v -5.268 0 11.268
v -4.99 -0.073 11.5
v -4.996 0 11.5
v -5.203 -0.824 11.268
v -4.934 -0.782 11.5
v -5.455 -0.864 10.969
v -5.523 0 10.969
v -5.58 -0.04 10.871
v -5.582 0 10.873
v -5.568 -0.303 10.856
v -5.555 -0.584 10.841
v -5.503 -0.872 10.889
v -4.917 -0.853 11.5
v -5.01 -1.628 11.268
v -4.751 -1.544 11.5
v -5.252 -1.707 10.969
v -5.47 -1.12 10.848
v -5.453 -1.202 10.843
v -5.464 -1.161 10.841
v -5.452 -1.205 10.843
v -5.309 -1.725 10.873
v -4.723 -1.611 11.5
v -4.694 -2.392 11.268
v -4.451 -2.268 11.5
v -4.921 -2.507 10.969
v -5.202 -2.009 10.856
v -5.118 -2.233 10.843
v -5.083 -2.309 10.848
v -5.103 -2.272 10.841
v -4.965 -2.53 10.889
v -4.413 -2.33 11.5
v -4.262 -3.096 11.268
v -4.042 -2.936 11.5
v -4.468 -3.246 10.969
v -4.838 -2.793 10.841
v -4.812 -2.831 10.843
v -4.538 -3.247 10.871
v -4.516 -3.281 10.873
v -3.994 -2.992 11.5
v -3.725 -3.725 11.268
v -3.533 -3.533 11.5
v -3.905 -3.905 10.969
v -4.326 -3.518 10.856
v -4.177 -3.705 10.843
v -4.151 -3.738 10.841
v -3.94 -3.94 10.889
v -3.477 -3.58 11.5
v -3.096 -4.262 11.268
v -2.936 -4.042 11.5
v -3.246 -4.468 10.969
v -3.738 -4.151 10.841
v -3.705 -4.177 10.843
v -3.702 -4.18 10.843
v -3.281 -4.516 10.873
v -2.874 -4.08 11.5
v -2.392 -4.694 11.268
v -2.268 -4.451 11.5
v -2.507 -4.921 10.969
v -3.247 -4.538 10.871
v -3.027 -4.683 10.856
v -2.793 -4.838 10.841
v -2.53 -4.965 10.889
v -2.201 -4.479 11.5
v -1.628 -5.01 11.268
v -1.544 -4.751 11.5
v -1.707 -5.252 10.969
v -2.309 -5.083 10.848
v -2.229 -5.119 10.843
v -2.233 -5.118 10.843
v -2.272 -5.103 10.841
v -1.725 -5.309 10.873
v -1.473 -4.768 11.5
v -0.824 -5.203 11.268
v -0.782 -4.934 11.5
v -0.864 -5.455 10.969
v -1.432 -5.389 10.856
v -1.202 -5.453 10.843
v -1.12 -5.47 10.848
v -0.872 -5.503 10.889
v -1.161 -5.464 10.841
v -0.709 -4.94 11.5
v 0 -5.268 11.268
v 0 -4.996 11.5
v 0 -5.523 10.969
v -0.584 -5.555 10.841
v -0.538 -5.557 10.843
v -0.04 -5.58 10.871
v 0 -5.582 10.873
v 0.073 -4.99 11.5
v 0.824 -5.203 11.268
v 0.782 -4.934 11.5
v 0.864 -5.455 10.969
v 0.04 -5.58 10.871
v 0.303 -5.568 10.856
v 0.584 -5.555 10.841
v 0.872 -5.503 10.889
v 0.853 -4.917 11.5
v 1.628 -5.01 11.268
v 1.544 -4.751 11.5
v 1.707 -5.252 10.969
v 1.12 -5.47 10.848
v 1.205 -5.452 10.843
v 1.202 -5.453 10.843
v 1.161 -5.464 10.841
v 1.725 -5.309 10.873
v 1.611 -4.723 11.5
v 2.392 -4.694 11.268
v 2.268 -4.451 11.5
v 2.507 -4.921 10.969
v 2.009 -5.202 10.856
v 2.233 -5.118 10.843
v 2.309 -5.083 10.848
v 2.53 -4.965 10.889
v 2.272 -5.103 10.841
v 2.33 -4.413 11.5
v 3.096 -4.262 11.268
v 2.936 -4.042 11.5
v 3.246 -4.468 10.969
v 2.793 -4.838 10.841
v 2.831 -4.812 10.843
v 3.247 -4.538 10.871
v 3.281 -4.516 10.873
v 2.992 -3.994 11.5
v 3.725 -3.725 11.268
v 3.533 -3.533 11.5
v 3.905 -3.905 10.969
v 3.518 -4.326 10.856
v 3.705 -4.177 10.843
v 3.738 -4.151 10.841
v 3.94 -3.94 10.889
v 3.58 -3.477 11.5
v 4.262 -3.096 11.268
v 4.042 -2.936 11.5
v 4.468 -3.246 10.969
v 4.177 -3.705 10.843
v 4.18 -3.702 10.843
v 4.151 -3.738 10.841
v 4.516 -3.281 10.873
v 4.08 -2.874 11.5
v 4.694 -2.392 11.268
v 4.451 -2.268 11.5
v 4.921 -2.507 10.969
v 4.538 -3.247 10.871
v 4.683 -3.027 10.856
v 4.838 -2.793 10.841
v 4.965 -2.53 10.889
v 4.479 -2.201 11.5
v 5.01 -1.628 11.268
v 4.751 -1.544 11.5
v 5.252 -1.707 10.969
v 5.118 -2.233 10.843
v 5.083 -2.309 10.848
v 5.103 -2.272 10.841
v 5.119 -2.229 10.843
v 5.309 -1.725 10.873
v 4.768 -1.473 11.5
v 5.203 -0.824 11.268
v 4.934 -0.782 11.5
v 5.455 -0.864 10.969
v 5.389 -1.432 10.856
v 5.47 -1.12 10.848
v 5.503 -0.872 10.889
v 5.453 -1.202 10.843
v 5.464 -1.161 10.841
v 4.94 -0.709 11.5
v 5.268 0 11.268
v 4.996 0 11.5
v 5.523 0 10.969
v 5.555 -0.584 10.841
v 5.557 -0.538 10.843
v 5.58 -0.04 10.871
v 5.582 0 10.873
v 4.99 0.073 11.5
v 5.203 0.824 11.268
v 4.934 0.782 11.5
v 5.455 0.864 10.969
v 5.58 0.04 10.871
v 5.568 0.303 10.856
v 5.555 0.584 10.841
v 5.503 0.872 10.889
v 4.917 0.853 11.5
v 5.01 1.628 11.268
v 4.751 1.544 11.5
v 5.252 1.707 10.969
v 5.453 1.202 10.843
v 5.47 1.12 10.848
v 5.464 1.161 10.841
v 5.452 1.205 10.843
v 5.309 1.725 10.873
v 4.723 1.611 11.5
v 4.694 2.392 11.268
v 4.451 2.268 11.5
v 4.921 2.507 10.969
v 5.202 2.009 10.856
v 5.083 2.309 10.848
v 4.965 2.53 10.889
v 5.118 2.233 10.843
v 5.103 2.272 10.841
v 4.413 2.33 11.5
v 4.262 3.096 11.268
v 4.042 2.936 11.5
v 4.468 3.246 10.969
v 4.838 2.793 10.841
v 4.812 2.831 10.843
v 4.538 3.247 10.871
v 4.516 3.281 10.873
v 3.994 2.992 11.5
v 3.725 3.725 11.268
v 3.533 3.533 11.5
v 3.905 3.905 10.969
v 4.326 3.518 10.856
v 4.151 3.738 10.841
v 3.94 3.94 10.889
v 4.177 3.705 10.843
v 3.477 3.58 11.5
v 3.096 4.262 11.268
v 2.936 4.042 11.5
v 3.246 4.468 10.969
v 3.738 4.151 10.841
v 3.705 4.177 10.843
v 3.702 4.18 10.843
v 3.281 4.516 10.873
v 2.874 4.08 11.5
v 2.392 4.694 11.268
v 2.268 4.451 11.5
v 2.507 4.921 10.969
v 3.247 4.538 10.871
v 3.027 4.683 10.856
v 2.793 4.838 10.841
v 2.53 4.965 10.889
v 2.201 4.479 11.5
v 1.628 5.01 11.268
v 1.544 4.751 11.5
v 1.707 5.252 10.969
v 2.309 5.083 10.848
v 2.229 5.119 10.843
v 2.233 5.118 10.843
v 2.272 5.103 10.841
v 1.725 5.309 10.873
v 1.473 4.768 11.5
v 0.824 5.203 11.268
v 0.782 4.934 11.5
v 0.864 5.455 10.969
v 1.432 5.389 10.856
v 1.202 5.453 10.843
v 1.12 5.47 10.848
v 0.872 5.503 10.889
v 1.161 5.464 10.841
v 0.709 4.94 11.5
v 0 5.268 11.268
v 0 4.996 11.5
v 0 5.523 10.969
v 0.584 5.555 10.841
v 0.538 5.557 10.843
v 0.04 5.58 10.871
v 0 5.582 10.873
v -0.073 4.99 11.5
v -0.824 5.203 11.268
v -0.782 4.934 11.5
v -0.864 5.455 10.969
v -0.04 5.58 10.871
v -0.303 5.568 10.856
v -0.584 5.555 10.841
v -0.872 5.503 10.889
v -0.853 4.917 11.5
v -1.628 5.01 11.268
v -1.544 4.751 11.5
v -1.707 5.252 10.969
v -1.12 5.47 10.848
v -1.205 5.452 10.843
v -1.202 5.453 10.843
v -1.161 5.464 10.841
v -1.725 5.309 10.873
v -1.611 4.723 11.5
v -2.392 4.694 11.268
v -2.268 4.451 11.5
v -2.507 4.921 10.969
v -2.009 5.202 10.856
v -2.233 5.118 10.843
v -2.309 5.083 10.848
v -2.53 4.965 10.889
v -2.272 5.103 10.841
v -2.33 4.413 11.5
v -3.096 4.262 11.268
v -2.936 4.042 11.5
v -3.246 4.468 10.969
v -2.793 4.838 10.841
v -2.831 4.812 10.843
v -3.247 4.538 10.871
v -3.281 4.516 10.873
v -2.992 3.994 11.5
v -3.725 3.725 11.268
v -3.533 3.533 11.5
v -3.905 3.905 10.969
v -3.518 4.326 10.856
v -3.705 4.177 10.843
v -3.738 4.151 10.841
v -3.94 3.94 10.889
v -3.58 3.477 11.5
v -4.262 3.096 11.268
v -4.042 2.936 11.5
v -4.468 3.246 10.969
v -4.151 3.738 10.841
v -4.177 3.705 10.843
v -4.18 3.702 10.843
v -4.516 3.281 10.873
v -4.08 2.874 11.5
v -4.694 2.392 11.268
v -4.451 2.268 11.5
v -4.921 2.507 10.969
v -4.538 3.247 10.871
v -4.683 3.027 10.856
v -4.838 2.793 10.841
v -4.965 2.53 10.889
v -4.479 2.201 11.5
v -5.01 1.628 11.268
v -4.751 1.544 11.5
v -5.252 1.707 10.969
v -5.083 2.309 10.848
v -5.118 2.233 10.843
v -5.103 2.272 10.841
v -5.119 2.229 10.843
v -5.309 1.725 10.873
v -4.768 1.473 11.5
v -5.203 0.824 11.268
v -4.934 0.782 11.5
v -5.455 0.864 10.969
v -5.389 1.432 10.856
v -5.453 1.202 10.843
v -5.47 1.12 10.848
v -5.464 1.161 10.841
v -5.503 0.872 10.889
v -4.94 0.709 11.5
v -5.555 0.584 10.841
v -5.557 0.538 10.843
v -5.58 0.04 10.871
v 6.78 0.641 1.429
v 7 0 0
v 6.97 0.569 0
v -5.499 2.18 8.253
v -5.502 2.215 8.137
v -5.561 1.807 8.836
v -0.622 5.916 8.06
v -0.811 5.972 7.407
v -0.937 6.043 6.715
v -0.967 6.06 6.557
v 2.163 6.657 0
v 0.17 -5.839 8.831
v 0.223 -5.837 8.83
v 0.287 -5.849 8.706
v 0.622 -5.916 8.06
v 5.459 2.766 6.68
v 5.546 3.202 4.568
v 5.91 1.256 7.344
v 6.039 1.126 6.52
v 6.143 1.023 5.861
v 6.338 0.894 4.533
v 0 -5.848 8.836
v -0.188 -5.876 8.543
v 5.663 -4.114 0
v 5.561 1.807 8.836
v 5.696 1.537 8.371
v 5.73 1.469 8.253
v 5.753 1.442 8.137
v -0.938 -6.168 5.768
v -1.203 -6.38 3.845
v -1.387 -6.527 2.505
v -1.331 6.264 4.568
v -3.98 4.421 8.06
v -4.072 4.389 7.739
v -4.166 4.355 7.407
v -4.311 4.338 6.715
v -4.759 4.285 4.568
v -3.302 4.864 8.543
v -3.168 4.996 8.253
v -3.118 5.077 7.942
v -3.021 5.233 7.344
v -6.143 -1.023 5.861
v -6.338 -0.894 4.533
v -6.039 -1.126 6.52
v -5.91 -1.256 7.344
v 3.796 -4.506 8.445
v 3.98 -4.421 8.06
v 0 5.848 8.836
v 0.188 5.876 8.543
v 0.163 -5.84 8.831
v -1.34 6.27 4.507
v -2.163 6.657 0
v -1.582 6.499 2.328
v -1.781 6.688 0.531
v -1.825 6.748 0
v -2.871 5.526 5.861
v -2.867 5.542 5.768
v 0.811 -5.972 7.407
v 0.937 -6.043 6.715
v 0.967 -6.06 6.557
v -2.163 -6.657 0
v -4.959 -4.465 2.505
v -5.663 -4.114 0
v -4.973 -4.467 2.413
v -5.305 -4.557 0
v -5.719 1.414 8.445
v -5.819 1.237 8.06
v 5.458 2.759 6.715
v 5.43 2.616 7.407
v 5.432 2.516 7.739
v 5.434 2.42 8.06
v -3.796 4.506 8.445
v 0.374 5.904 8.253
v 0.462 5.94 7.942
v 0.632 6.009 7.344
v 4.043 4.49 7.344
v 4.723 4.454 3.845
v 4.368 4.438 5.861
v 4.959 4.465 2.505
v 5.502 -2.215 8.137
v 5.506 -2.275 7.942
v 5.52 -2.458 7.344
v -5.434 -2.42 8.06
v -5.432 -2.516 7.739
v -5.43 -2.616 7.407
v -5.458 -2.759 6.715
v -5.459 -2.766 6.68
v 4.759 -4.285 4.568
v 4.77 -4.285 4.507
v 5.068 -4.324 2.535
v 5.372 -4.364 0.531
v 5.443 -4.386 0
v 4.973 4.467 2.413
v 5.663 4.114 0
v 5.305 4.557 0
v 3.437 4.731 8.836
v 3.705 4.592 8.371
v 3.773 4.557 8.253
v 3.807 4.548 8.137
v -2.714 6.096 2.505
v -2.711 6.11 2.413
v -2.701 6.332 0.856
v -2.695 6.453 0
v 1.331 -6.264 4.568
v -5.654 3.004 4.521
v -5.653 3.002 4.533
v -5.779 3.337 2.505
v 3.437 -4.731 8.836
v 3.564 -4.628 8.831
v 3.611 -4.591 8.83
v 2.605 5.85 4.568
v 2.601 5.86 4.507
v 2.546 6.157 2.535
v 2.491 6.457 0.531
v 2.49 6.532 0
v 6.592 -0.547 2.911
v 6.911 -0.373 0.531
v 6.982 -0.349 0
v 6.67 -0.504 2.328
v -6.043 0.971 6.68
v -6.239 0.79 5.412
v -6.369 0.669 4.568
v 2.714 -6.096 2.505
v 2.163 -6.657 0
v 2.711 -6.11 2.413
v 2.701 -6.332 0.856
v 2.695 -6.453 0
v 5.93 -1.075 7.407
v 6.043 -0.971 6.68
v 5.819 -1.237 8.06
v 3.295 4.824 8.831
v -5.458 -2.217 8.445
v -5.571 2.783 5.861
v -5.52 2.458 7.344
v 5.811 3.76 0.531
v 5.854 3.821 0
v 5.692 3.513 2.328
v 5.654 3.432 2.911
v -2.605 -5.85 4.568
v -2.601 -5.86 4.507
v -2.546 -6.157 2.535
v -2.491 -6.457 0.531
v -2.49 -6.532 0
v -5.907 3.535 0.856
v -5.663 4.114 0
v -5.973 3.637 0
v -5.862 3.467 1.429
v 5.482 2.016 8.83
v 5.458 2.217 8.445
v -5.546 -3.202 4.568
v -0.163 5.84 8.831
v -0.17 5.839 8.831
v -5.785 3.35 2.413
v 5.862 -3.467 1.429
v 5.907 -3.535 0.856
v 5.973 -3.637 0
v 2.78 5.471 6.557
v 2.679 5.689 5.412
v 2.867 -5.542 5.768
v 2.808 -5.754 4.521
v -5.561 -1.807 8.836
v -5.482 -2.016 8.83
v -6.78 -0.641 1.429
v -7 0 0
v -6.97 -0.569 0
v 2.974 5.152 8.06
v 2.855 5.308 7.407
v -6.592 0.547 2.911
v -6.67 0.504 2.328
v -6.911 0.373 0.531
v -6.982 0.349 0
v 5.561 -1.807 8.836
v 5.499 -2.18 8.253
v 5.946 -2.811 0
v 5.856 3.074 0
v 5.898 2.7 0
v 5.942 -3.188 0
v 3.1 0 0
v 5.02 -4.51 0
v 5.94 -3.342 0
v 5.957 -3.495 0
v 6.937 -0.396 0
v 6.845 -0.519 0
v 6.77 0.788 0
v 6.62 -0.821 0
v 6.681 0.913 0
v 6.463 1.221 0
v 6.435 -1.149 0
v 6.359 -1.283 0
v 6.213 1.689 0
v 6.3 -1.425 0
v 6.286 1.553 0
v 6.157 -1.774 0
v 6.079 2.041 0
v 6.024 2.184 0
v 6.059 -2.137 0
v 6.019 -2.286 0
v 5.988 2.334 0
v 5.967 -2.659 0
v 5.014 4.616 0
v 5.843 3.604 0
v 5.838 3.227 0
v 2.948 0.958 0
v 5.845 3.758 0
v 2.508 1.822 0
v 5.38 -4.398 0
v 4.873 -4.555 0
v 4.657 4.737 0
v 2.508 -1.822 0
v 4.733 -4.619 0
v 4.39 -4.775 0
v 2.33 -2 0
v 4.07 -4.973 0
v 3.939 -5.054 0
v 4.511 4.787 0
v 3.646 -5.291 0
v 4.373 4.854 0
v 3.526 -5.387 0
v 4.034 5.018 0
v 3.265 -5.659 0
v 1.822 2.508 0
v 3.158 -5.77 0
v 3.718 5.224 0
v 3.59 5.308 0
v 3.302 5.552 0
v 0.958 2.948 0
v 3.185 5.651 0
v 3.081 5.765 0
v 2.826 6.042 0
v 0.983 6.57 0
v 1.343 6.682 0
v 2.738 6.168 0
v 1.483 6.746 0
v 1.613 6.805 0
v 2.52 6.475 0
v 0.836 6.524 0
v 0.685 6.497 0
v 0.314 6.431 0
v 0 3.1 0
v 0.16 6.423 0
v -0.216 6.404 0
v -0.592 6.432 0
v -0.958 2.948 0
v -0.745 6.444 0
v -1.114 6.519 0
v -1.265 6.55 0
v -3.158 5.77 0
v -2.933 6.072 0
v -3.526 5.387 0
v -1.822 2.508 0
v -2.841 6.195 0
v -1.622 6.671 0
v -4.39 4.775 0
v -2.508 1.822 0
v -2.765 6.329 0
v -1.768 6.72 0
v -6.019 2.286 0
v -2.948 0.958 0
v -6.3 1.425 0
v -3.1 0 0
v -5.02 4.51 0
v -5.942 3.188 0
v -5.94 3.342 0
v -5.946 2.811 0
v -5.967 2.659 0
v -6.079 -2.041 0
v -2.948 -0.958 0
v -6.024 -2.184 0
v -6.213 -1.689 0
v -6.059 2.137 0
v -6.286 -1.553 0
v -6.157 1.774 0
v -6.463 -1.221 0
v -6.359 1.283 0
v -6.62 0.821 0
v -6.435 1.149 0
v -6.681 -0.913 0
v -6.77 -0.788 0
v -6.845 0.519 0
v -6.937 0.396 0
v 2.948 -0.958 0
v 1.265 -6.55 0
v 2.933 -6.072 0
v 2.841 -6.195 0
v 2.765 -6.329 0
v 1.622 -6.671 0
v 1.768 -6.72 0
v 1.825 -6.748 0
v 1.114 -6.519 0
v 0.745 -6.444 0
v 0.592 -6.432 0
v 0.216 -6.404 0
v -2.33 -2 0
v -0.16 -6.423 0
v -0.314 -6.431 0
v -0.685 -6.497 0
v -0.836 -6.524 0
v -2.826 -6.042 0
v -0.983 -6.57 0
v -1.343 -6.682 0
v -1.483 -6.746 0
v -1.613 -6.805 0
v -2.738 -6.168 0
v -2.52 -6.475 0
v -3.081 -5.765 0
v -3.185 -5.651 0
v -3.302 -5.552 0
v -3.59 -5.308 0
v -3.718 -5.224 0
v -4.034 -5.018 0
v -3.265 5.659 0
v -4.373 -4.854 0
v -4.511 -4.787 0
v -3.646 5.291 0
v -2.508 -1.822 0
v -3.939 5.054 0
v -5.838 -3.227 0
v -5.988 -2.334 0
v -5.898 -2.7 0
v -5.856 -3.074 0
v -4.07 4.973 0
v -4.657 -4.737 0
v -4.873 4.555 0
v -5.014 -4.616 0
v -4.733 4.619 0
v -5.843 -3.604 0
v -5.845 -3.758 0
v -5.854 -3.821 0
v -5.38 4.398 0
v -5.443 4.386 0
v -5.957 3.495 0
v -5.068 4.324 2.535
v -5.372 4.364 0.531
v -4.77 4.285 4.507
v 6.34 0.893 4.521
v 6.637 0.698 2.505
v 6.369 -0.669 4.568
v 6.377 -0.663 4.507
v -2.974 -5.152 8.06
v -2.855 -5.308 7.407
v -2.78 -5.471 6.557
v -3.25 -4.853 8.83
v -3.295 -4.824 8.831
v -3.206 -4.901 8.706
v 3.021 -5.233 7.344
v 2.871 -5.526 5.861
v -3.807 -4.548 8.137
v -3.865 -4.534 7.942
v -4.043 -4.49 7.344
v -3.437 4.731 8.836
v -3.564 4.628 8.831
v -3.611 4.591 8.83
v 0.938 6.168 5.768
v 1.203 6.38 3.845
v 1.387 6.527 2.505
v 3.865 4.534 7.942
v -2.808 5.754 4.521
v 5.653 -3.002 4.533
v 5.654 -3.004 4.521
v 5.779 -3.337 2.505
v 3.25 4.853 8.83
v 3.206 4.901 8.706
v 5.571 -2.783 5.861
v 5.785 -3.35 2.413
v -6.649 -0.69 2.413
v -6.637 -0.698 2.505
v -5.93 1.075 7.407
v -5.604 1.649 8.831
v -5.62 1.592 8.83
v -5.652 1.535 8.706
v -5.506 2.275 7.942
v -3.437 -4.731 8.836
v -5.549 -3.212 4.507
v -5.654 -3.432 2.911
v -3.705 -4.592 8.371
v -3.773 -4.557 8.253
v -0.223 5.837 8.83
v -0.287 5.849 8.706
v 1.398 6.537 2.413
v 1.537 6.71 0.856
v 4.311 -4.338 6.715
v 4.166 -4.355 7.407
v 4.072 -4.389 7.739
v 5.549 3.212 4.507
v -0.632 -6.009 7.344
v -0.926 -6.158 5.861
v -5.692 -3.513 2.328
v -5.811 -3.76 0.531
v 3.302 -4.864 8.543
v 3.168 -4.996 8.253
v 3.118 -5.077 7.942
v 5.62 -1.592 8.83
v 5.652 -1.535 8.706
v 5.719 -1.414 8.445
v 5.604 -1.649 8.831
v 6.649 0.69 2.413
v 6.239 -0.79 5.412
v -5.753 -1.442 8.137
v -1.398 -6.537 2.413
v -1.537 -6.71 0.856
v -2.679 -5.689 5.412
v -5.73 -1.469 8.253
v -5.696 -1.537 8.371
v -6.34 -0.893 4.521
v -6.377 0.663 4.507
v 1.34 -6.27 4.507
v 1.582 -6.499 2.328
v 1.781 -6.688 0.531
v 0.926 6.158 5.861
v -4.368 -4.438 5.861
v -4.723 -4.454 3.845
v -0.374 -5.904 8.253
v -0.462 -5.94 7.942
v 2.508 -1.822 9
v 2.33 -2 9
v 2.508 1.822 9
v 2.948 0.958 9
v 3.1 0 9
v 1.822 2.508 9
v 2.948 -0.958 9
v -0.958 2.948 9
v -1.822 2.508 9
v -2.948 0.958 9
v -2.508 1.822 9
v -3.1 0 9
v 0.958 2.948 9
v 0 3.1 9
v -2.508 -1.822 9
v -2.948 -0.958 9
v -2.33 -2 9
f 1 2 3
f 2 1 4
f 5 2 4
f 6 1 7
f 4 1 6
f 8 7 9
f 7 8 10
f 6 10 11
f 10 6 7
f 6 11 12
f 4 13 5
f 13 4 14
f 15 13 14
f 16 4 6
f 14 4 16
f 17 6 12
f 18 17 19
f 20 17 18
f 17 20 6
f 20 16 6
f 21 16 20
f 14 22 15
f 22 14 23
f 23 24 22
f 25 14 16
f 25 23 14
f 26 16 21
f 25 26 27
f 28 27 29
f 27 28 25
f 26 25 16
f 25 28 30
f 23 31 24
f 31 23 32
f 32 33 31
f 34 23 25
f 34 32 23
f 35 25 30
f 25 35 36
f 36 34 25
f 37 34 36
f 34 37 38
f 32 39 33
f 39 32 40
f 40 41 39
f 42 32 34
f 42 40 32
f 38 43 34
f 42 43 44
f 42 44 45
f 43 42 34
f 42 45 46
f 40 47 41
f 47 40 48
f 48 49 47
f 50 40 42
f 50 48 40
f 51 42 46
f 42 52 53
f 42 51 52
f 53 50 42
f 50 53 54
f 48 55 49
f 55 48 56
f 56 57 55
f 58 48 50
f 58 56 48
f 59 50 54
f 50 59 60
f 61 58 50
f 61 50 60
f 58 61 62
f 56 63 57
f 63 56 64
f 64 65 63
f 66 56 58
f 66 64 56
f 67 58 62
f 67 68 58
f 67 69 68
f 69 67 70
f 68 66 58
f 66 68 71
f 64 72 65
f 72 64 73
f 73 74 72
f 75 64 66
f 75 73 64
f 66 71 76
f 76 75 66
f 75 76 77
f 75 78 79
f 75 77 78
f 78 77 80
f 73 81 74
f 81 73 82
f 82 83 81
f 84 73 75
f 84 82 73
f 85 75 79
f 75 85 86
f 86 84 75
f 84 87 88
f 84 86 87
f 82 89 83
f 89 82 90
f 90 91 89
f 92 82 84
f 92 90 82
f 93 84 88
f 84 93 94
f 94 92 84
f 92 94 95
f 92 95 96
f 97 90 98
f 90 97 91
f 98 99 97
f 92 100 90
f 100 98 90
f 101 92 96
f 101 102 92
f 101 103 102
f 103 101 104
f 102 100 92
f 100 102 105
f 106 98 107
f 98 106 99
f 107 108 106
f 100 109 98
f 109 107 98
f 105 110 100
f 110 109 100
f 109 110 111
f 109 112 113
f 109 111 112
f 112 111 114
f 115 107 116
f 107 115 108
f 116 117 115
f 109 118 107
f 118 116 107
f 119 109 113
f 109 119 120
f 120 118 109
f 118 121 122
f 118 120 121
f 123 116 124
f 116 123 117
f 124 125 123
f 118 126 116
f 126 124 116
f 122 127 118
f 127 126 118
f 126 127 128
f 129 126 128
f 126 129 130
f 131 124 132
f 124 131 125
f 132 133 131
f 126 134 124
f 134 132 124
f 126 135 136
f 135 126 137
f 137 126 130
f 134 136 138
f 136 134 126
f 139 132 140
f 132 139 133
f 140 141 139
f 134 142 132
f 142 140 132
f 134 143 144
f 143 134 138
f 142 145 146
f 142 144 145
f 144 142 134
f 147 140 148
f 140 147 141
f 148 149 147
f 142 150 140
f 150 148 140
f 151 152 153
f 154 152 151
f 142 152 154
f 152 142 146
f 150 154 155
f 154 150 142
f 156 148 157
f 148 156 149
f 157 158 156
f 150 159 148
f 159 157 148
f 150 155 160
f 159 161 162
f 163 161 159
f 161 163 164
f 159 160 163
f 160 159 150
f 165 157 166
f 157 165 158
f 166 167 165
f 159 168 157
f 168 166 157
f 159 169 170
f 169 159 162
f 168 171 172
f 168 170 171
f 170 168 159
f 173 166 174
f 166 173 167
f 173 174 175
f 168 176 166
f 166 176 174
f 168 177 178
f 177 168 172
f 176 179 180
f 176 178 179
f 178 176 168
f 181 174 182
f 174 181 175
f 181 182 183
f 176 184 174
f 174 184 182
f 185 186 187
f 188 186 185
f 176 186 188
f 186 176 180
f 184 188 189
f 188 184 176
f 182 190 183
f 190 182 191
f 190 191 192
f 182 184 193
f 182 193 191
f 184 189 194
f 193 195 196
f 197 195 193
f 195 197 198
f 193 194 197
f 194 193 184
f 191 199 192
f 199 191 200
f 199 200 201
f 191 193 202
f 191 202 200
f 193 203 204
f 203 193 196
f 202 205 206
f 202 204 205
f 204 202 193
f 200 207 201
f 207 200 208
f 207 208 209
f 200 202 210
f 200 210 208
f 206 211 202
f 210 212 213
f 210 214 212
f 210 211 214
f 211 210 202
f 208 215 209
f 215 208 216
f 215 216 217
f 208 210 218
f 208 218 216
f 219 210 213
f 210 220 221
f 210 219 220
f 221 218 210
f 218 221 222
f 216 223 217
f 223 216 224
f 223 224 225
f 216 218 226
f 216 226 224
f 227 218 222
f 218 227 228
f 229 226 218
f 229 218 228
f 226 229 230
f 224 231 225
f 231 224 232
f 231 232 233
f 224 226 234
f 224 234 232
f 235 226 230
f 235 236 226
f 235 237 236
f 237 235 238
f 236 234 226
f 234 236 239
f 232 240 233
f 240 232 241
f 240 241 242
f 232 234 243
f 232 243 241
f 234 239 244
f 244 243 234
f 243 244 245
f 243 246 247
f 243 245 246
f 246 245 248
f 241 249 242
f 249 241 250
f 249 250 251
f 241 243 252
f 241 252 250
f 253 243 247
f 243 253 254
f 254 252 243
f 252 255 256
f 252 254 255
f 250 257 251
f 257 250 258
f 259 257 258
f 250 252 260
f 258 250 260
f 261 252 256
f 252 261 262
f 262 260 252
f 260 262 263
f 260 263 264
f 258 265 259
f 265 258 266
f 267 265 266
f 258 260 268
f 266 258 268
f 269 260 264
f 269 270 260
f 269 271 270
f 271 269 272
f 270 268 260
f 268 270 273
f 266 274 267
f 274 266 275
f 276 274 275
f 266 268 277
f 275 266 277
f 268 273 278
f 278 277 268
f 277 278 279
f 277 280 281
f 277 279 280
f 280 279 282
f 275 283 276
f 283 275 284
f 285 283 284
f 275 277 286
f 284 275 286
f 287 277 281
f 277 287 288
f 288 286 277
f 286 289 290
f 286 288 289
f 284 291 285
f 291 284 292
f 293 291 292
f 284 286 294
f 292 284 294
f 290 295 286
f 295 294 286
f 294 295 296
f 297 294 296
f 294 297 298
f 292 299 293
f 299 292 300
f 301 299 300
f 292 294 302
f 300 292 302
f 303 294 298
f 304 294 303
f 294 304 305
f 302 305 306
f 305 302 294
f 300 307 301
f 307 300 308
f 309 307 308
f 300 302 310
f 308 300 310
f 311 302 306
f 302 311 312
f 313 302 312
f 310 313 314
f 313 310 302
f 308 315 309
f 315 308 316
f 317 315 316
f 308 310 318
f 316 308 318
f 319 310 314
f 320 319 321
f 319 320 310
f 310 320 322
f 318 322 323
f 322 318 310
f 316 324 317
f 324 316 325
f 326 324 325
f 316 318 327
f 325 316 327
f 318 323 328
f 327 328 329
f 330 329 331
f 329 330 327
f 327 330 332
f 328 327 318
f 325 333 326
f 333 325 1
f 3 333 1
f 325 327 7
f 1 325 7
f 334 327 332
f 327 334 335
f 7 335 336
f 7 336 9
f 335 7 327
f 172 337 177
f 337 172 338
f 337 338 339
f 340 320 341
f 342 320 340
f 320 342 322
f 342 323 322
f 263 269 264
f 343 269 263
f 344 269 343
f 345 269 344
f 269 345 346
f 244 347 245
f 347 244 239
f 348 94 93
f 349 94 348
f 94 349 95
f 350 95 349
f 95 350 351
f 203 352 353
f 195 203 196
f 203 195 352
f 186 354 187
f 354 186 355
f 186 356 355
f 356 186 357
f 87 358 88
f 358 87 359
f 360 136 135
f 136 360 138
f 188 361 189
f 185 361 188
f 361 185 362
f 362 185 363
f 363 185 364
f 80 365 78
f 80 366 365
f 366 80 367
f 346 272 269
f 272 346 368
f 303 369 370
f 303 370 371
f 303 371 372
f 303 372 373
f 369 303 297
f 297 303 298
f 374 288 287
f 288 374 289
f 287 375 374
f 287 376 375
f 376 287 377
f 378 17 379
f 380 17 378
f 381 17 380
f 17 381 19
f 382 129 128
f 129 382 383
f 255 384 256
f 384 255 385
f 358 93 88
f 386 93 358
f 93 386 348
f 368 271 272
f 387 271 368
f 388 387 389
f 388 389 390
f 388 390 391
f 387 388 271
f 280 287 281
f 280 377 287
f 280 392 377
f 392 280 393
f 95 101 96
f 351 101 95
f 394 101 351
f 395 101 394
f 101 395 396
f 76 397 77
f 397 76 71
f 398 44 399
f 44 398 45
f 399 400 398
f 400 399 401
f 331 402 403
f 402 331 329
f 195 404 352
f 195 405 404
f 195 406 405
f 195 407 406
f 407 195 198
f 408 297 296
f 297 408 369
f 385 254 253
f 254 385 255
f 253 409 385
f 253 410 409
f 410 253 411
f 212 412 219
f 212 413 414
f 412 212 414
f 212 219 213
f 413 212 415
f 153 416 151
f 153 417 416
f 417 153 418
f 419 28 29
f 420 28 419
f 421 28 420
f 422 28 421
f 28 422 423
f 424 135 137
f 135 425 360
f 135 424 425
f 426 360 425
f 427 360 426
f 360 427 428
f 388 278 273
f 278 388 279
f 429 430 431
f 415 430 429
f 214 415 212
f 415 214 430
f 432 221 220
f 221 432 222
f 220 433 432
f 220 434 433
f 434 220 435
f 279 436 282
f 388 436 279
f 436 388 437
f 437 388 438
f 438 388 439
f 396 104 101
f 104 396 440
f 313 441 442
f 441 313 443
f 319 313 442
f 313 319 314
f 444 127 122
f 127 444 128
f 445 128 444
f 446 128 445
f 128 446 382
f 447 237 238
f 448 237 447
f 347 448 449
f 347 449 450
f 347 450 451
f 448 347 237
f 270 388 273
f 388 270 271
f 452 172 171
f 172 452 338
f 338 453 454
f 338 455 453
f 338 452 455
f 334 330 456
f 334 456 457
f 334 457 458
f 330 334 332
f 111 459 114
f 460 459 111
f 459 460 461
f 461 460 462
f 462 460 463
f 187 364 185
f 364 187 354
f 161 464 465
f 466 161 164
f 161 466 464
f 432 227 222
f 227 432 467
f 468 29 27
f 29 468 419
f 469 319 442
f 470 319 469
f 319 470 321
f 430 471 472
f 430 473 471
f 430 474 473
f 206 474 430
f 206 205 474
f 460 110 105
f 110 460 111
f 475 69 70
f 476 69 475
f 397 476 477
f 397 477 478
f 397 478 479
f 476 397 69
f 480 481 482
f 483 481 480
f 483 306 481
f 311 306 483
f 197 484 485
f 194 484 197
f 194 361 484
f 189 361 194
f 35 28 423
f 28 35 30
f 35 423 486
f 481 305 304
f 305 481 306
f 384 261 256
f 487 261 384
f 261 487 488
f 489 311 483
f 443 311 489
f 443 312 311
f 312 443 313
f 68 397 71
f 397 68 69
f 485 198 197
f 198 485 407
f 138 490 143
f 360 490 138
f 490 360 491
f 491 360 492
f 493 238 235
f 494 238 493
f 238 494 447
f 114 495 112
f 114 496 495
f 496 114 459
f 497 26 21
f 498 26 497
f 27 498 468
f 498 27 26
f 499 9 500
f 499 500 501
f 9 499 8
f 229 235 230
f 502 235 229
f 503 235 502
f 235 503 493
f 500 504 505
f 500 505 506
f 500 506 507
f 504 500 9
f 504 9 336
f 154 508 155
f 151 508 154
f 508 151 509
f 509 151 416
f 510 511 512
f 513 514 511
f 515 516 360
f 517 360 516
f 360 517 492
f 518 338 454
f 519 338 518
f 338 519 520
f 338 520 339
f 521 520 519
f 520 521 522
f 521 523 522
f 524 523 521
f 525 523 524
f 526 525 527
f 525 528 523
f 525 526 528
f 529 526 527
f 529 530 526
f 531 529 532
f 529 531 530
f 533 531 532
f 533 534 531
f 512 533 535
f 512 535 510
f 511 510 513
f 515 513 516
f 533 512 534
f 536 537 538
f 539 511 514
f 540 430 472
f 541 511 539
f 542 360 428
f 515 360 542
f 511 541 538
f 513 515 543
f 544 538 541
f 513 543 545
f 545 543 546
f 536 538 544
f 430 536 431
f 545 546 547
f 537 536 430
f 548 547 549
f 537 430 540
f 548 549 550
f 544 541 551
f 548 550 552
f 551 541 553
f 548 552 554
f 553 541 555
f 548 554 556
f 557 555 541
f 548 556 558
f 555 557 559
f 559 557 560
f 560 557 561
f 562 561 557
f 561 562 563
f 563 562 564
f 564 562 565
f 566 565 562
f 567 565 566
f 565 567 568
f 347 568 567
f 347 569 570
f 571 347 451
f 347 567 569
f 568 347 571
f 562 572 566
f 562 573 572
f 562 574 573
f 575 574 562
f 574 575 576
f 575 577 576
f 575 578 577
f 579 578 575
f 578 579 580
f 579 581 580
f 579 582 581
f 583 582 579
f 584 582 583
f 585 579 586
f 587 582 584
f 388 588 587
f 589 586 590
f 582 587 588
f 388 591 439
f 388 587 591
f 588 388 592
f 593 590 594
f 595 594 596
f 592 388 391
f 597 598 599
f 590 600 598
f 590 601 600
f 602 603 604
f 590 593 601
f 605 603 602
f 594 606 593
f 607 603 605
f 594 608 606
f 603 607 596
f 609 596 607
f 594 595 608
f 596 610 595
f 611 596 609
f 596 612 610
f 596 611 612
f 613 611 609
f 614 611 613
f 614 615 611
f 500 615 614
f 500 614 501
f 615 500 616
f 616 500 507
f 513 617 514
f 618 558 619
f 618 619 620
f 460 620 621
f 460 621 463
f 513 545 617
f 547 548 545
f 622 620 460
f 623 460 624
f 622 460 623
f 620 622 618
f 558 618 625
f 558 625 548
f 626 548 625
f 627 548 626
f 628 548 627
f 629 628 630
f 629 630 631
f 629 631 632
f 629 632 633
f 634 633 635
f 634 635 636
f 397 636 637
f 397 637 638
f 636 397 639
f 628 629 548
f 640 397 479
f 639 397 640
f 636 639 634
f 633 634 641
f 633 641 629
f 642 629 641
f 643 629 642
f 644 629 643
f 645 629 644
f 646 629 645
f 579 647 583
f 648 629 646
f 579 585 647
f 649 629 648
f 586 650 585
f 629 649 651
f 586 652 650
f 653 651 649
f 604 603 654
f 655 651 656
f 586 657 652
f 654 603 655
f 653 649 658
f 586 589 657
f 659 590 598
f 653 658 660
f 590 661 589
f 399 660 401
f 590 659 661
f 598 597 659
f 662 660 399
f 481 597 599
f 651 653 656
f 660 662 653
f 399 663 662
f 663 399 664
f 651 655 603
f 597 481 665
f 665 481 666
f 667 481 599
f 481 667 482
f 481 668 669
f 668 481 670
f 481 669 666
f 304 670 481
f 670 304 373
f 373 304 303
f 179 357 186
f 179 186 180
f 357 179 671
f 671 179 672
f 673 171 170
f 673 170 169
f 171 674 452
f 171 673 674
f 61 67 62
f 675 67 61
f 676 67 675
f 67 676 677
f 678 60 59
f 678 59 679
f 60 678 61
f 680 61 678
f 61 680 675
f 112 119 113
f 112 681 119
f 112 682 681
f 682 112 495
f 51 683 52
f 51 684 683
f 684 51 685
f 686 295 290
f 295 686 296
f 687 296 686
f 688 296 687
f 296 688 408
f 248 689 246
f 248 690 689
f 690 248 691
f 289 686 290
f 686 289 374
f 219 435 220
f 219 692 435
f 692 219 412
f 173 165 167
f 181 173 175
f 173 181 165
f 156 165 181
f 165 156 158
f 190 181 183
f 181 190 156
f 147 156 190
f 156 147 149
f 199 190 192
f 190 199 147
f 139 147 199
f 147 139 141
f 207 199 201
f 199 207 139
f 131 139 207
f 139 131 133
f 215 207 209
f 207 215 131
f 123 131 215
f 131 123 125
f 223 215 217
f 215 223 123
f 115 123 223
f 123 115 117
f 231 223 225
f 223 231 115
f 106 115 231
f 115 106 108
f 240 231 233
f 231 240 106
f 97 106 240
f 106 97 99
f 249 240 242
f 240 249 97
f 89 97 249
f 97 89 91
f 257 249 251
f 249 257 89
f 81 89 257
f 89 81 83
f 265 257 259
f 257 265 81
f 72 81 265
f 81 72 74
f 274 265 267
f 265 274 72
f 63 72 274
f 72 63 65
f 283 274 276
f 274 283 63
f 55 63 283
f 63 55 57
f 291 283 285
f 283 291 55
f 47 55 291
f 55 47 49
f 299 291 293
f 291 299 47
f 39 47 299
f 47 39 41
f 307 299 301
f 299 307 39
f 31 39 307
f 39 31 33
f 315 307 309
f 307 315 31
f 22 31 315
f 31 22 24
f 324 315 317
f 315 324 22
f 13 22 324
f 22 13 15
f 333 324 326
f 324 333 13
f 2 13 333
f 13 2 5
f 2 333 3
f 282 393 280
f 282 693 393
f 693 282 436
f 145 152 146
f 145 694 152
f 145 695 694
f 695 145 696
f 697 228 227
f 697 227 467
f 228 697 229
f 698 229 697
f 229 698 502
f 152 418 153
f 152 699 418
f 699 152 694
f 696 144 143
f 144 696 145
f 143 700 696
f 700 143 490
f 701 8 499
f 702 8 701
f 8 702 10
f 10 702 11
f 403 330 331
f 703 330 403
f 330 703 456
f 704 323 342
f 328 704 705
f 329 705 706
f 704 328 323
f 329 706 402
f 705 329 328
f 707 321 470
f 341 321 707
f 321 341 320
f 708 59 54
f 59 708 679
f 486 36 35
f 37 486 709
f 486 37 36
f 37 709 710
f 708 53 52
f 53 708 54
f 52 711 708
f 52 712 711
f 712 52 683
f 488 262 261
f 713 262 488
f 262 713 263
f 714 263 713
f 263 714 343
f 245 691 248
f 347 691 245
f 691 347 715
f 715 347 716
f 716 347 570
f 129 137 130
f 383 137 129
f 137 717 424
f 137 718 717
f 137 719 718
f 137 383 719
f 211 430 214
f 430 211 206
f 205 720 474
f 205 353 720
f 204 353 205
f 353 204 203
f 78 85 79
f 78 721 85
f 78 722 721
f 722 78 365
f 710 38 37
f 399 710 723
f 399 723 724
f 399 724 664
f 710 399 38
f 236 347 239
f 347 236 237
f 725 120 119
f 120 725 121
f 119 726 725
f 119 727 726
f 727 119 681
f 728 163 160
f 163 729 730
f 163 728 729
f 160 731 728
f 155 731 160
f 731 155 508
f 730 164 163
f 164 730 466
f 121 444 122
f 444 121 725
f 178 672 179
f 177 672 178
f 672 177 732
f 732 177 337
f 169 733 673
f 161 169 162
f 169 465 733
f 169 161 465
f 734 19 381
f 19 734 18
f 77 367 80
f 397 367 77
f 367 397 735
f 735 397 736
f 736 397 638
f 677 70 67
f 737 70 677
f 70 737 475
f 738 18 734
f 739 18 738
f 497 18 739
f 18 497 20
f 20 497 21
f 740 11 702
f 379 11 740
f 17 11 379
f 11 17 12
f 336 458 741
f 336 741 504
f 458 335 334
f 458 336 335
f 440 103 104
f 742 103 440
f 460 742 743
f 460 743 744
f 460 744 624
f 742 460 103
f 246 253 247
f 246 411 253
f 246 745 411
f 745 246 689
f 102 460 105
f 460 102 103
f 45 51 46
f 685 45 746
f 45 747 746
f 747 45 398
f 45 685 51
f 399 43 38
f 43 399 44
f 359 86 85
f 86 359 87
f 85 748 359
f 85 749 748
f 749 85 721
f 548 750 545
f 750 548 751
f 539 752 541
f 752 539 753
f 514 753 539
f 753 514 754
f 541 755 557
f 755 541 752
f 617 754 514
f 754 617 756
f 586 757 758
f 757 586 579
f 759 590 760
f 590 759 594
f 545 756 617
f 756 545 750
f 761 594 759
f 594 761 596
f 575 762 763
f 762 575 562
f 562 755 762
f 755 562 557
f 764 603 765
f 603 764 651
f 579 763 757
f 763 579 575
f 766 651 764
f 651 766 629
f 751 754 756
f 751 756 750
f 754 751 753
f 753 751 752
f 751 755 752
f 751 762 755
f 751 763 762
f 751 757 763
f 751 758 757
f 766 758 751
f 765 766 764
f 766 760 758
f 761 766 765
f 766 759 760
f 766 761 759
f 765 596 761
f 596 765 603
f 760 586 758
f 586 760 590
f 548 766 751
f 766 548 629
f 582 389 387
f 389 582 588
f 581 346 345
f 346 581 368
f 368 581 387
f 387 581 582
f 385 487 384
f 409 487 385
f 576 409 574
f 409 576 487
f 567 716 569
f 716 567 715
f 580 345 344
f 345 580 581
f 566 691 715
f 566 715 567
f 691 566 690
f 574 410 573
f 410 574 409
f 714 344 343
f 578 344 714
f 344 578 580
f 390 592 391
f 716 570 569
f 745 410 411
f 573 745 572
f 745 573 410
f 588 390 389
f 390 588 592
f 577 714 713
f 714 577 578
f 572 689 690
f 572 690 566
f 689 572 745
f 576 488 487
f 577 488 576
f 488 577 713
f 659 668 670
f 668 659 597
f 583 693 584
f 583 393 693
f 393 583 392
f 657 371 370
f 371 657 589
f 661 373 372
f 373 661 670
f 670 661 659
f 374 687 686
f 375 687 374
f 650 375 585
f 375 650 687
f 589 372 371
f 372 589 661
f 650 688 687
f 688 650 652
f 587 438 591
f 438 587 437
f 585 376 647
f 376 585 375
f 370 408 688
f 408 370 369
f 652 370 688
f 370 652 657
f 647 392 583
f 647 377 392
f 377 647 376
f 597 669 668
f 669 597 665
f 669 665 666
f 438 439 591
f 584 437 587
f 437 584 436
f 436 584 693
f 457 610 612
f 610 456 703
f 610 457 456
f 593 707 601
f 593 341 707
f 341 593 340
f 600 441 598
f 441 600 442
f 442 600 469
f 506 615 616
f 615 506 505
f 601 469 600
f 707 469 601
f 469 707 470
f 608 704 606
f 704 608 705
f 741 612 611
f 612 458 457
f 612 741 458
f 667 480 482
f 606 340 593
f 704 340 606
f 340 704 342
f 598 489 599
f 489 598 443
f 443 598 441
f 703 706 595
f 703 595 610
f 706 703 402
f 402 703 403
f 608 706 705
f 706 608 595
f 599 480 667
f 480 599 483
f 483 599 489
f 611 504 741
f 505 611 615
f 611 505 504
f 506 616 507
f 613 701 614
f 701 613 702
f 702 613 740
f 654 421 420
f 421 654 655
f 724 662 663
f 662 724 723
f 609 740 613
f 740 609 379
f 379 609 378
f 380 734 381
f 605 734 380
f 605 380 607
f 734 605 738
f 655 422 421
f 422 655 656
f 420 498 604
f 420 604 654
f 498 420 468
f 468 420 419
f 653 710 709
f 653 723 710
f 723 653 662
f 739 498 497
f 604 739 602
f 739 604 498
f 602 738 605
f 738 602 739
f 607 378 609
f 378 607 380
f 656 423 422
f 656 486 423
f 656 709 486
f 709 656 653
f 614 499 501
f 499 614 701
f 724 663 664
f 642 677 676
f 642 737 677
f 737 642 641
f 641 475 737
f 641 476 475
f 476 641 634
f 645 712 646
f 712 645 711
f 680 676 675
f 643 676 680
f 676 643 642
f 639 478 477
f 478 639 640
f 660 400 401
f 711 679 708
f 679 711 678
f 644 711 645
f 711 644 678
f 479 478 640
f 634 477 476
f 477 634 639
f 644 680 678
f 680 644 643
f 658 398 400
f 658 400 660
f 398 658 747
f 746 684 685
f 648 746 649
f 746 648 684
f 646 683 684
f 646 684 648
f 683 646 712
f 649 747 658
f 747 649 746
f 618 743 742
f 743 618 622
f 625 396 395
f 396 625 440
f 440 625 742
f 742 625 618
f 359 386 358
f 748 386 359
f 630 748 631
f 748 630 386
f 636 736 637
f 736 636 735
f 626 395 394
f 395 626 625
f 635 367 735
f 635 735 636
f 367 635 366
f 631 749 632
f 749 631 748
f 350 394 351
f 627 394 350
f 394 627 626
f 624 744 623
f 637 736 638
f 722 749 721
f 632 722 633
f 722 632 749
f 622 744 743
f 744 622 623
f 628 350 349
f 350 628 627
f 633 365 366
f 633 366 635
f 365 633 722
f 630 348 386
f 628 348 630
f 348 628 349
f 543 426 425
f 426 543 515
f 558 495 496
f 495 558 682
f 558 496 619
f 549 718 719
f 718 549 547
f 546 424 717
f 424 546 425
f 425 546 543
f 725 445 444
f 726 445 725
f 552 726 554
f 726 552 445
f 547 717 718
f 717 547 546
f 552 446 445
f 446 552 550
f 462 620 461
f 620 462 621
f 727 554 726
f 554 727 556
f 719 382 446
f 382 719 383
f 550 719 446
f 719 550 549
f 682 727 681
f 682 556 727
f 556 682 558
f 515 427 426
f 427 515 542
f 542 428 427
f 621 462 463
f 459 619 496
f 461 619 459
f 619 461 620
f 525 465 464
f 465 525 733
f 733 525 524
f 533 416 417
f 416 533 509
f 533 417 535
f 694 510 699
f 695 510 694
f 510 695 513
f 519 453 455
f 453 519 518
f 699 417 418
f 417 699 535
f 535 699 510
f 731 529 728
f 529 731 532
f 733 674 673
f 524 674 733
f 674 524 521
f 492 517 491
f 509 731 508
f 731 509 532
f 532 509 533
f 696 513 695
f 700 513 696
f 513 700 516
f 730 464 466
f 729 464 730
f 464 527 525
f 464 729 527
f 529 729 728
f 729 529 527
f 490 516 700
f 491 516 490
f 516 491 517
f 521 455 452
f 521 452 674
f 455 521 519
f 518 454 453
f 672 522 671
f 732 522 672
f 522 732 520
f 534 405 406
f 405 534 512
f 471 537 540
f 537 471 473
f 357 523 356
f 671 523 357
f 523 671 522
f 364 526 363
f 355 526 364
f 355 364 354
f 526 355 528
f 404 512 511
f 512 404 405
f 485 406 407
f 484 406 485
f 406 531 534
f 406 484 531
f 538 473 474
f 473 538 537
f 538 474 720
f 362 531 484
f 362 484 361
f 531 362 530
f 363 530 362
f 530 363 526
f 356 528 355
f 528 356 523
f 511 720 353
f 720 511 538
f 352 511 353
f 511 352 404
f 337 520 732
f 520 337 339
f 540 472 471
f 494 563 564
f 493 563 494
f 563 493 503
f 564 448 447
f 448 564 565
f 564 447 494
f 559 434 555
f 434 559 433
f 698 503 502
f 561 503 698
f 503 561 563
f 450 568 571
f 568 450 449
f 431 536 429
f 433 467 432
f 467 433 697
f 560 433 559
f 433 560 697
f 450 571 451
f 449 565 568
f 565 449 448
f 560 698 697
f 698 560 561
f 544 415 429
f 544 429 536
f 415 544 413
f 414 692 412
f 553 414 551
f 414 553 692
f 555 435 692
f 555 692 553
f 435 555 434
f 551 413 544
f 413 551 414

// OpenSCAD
/*

Parametric Potentiometer Knob Generator
version 1.1
2012 Steve Cooley
http://sc-fa.com
http://beatseqr.com
http://hapticsynapses.com

parametric potentiometer knob generator by steve cooley is licensed under a Creative Commons Attribution-NonCommercial-ShareAlike 3.0 Unported License. Based on a work at sc-fa.com. Permissions beyond the scope of this license may be available at http://sc-fa.com/blog/contact.

view terms of the license here:
http://creativecommons.org/licenses/by-nc-sa/3.0/


version history
---------------
1.1 2012-04-12 fixed the arrow indicator code to be more robust and easier to adjust parameters for.
1.0 2012-03-?? initial release.


*/


//
//
// Physical attributes, basic
//
//

knob_radius_top = 5.5;
knob_radius_bottom = 7;
knob_height = 11.5;
knob_smoothness = 60;

shaft_radius = 3.1;
shaft_height = 10;
shaft_smoothness = 20;

shaft_is_flatted = true;
flat_size_adjustment = 0.5;
// you won't need to mess with this. less than 5 makes it disappear. you can, however,
// set the adjustment to be a negative decimal if you need a flat but not as big as the default. 
// go positive if you need a bigger flat
flat_size = 5 + flat_size_adjustment;

// some potentiometers need to have their knobs affixed with a set screw.
set_screw = false;
set_screw_radius = 1.5;
set_screw_depth = 9;
set_screw_height = 4;
quality_of_set_screw = 20;

//
// 
// Decorations
//
//

//
// top edge smoothing
// thanks to http://www.iheartrobotics.com/ for the articles!
//

smoothing = true;
smoothing_radius = 2.5;				// tweak on this one, how much smoothing to apply
smooth = 40;						// tweak on this one, Number of facets of rounding cylinder

ct = -0.5; 							// circle translate? not sure.
circle_radius = knob_radius_top;  	// just match the top edge radius
circle_height = 1; 					// actually.. I don't know what this does.
pad = 0.2;							// Padding to maintain manifold


//
// directional indicators
//

// this is a corner edge of a cube sticking out of the cylinder at the bottom
// you can use it instead of the arrow shaped cutout in the top if you like. Or both.

pointy_external_indicator = false;
pointy_external_indicator_height = 9;
pointy_external_indicator_pokey_outey_ness = -0.5; // 
pokey_outey_value = pointy_external_indicator_pokey_outey_ness - 1 - pad;
pokey_outey = [pokey_outey_value, pokey_outey_value,0];

// there's an arrow shaped hole you can have. There aren't a lot of controls for this.
// please feel free to improve on this script here.

arrow_indicator = false;
arrow_indicator_scale = 0.4;
arrow_indicator_translate = [0,1,16];
arrow_scale_head = 2;
arrow_scale_shaft = 1.5;

//
// indentations
//

// for spherical indentations, set the quantity, quality, size, and adjust the placement
indentations_sphere = false;
sphere_number_of_indentations = 10;
sphere_quality_of_indentations = 10;
size_of_sphere_indentations = 3;
// the first number in this set moves the spheres in or out. smaller is closer to the middle
// the second number in this set moves the spheres left or right
// the third number in this set moves the speheres up or down
translation_of_sphere_indentations = [8,0,15];
// in case you are using an odd number of indentations, you way want to adjust the starting angle
// so that they align to the front or set screw locations.
sphere_starting_rotation = 90;

// for cylinder indentations, set quantity, quality, radius, height, and placement
indentations_cylinder = true;
cylinder_number_of_indentations = 10;
cylinder_quality_of_indentations = 50;
radius_of_cylinder_indentations_top = 4.9;
radius_of_cylinder_indentations_bottom = 4;
height_of_cylinder_indentations = 14;
translation_of_cylinder_indentations = [0,8,-8];
cylinder_starting_rotation = -40.3;

// these are some setup variables... you probably won't need to mess with them.
negative_knob_radius = knob_radius_bottom*-1;


// this is the main module. It calls the submodules.
make_the_knob();

module make_the_knob()
{
	difference()
		{
		difference()
			{
		
			difference() 
				{
				difference() 
					{
					
					union()
						{
						
						difference()
							{
							// main cylinder
							cylinder(r1=knob_radius_bottom,r2=knob_radius_top,h=knob_height, $fn=knob_smoothness);
							
							smoothing();				
		
							}
				
						external_direction_indicator();	
						}
					
					shaft_hole();
					}
					
				set_screw_hole();
				}
			
			arrow_indicator();
			indentations();
		}
	}

}

module smoothing() {

// smoothing the top
				if(smoothing == true)
					{		
						translate([0,0,knob_height])
						rotate([180,0,0])
						difference() {
							rotate_extrude(convexity=10,  $fn = smooth)
							translate([circle_radius-ct-smoothing_radius+pad,ct-pad,0])
							square(smoothing_radius+pad,smoothing_radius+pad);
	
							rotate_extrude(convexity=10,  $fn = smooth)
							translate([circle_radius-ct-smoothing_radius,ct+smoothing_radius,0])
							circle(r=smoothing_radius,$fn=smooth);
							}	
					}
}

module external_direction_indicator() {

				if(pointy_external_indicator == true)
						{
						
						
						// outer pointy indicator
						rotate([0,0,45])
						translate(pokey_outey)
						// cube size of 8 minimum to point out
						cube(size=[knob_radius_bottom,knob_radius_bottom,pointy_external_indicator_height],center=false);
						}

}

module shaft_hole() {
				// shaft hole
				difference()
					{
					
					// round shaft hole
					translate([ 0, 0, -1 ]) 
					cylinder(r=shaft_radius,h=shaft_height, $fn=shaft_smoothness);
					
					if(shaft_is_flatted == true)
						{
						// D shaft shape for shaft cutout
						rotate( [0,0,90]) 
						translate([-7.5,-5,0]) 
						cube(size=[flat_size,10,13],center=false);
						}
					}
}


module set_screw_hole() {

			if(set_screw == true)
				{
				// set screw hole
				rotate ([90,0,0])
				translate([ 0, set_screw_height, 1 ])
				cylinder(r=set_screw_radius,h=set_screw_depth, $fn=quality_of_set_screw);
				}
}

module arrow_indicator() {
		if(arrow_indicator == true)
			{
			translate(arrow_indicator_translate)
			// begin arrow top cutout
			// translate([(knob_radius/2),knob_height,knob_height])
			rotate([90,0,45])
			scale([arrow_indicator_scale*.3,arrow_indicator_scale*.3,arrow_indicator_scale*.3])
			union()
				{			  
				rotate([90,45,0])
				scale([arrow_scale_head,arrow_scale_head,1])
				cylinder(r=8, h=10, $fn=3, center=true);
				rotate([90,45,0])
				translate([-10,0,0])
				scale([arrow_scale_shaft,arrow_scale_shaft,1])
				cube(size=[15,10,10],center=true);
				}
			}
}

module indentations() {

if(indentations_sphere == true)
			{
			for (z = [0:sphere_number_of_indentations]) 
				{
				rotate([0,0,sphere_starting_rotation+((360/sphere_number_of_indentations)*z)])
				translate(translation_of_sphere_indentations)
				sphere(size_of_sphere_indentations, $fn=sphere_quality_of_indentations); 
				}
			}
if(indentations_cylinder == true)
			{
                start = (pointy_external_indicator) ? 1 : 0;
                end = (pointy_external_indicator) ? cylinder_number_of_indentations - 1 : cylinder_number_of_indentations;
			for (z = [start:end]) 
				{
				rotate([0,0,cylinder_starting_rotation+((360/cylinder_number_of_indentations)*z)])
				
				translate([negative_knob_radius,0,knob_height])
				translate(translation_of_cylinder_indentations)
				cylinder(r1=radius_of_cylinder_indentations_bottom, r2=radius_of_cylinder_indentations_top, h=height_of_cylinder_indentations, center=true, $fn=cylinder_quality_of_indentations); 
				}
			}
		}
